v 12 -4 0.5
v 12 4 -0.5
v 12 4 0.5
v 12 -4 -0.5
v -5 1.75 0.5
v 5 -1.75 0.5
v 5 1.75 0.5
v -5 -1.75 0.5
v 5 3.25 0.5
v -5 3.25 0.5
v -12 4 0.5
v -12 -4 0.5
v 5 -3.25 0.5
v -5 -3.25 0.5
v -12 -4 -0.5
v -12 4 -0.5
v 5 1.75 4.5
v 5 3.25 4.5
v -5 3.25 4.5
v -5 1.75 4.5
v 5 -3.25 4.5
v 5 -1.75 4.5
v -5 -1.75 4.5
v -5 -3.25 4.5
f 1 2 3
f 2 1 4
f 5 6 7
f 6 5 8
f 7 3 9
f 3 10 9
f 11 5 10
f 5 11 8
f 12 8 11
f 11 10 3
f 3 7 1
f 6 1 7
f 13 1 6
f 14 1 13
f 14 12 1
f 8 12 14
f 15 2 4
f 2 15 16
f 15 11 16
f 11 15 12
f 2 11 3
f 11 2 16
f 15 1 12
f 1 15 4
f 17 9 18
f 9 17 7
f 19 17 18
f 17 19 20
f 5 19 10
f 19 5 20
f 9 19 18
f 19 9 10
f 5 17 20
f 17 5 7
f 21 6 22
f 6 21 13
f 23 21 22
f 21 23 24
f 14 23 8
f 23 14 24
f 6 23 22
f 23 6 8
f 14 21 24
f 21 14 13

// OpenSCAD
outer_width = 24;
outer_height = 8;

thickness = 1;
inner_width = 10;
inner_thickness = 5;
inner_height = 6.5;
wall_thickness = 1.5;


dw = inner_height / 2 - wall_thickness / 2;

cube([outer_width, outer_height, thickness], center=true);
translate([0, dw, inner_thickness / 2 - thickness / 2]) {
    cube([inner_width, wall_thickness, inner_thickness], center=true);
}
translate([0, -dw, inner_thickness / 2 - thickness / 2]) {
    cube([inner_width, wall_thickness, inner_thickness], center=true);
}
